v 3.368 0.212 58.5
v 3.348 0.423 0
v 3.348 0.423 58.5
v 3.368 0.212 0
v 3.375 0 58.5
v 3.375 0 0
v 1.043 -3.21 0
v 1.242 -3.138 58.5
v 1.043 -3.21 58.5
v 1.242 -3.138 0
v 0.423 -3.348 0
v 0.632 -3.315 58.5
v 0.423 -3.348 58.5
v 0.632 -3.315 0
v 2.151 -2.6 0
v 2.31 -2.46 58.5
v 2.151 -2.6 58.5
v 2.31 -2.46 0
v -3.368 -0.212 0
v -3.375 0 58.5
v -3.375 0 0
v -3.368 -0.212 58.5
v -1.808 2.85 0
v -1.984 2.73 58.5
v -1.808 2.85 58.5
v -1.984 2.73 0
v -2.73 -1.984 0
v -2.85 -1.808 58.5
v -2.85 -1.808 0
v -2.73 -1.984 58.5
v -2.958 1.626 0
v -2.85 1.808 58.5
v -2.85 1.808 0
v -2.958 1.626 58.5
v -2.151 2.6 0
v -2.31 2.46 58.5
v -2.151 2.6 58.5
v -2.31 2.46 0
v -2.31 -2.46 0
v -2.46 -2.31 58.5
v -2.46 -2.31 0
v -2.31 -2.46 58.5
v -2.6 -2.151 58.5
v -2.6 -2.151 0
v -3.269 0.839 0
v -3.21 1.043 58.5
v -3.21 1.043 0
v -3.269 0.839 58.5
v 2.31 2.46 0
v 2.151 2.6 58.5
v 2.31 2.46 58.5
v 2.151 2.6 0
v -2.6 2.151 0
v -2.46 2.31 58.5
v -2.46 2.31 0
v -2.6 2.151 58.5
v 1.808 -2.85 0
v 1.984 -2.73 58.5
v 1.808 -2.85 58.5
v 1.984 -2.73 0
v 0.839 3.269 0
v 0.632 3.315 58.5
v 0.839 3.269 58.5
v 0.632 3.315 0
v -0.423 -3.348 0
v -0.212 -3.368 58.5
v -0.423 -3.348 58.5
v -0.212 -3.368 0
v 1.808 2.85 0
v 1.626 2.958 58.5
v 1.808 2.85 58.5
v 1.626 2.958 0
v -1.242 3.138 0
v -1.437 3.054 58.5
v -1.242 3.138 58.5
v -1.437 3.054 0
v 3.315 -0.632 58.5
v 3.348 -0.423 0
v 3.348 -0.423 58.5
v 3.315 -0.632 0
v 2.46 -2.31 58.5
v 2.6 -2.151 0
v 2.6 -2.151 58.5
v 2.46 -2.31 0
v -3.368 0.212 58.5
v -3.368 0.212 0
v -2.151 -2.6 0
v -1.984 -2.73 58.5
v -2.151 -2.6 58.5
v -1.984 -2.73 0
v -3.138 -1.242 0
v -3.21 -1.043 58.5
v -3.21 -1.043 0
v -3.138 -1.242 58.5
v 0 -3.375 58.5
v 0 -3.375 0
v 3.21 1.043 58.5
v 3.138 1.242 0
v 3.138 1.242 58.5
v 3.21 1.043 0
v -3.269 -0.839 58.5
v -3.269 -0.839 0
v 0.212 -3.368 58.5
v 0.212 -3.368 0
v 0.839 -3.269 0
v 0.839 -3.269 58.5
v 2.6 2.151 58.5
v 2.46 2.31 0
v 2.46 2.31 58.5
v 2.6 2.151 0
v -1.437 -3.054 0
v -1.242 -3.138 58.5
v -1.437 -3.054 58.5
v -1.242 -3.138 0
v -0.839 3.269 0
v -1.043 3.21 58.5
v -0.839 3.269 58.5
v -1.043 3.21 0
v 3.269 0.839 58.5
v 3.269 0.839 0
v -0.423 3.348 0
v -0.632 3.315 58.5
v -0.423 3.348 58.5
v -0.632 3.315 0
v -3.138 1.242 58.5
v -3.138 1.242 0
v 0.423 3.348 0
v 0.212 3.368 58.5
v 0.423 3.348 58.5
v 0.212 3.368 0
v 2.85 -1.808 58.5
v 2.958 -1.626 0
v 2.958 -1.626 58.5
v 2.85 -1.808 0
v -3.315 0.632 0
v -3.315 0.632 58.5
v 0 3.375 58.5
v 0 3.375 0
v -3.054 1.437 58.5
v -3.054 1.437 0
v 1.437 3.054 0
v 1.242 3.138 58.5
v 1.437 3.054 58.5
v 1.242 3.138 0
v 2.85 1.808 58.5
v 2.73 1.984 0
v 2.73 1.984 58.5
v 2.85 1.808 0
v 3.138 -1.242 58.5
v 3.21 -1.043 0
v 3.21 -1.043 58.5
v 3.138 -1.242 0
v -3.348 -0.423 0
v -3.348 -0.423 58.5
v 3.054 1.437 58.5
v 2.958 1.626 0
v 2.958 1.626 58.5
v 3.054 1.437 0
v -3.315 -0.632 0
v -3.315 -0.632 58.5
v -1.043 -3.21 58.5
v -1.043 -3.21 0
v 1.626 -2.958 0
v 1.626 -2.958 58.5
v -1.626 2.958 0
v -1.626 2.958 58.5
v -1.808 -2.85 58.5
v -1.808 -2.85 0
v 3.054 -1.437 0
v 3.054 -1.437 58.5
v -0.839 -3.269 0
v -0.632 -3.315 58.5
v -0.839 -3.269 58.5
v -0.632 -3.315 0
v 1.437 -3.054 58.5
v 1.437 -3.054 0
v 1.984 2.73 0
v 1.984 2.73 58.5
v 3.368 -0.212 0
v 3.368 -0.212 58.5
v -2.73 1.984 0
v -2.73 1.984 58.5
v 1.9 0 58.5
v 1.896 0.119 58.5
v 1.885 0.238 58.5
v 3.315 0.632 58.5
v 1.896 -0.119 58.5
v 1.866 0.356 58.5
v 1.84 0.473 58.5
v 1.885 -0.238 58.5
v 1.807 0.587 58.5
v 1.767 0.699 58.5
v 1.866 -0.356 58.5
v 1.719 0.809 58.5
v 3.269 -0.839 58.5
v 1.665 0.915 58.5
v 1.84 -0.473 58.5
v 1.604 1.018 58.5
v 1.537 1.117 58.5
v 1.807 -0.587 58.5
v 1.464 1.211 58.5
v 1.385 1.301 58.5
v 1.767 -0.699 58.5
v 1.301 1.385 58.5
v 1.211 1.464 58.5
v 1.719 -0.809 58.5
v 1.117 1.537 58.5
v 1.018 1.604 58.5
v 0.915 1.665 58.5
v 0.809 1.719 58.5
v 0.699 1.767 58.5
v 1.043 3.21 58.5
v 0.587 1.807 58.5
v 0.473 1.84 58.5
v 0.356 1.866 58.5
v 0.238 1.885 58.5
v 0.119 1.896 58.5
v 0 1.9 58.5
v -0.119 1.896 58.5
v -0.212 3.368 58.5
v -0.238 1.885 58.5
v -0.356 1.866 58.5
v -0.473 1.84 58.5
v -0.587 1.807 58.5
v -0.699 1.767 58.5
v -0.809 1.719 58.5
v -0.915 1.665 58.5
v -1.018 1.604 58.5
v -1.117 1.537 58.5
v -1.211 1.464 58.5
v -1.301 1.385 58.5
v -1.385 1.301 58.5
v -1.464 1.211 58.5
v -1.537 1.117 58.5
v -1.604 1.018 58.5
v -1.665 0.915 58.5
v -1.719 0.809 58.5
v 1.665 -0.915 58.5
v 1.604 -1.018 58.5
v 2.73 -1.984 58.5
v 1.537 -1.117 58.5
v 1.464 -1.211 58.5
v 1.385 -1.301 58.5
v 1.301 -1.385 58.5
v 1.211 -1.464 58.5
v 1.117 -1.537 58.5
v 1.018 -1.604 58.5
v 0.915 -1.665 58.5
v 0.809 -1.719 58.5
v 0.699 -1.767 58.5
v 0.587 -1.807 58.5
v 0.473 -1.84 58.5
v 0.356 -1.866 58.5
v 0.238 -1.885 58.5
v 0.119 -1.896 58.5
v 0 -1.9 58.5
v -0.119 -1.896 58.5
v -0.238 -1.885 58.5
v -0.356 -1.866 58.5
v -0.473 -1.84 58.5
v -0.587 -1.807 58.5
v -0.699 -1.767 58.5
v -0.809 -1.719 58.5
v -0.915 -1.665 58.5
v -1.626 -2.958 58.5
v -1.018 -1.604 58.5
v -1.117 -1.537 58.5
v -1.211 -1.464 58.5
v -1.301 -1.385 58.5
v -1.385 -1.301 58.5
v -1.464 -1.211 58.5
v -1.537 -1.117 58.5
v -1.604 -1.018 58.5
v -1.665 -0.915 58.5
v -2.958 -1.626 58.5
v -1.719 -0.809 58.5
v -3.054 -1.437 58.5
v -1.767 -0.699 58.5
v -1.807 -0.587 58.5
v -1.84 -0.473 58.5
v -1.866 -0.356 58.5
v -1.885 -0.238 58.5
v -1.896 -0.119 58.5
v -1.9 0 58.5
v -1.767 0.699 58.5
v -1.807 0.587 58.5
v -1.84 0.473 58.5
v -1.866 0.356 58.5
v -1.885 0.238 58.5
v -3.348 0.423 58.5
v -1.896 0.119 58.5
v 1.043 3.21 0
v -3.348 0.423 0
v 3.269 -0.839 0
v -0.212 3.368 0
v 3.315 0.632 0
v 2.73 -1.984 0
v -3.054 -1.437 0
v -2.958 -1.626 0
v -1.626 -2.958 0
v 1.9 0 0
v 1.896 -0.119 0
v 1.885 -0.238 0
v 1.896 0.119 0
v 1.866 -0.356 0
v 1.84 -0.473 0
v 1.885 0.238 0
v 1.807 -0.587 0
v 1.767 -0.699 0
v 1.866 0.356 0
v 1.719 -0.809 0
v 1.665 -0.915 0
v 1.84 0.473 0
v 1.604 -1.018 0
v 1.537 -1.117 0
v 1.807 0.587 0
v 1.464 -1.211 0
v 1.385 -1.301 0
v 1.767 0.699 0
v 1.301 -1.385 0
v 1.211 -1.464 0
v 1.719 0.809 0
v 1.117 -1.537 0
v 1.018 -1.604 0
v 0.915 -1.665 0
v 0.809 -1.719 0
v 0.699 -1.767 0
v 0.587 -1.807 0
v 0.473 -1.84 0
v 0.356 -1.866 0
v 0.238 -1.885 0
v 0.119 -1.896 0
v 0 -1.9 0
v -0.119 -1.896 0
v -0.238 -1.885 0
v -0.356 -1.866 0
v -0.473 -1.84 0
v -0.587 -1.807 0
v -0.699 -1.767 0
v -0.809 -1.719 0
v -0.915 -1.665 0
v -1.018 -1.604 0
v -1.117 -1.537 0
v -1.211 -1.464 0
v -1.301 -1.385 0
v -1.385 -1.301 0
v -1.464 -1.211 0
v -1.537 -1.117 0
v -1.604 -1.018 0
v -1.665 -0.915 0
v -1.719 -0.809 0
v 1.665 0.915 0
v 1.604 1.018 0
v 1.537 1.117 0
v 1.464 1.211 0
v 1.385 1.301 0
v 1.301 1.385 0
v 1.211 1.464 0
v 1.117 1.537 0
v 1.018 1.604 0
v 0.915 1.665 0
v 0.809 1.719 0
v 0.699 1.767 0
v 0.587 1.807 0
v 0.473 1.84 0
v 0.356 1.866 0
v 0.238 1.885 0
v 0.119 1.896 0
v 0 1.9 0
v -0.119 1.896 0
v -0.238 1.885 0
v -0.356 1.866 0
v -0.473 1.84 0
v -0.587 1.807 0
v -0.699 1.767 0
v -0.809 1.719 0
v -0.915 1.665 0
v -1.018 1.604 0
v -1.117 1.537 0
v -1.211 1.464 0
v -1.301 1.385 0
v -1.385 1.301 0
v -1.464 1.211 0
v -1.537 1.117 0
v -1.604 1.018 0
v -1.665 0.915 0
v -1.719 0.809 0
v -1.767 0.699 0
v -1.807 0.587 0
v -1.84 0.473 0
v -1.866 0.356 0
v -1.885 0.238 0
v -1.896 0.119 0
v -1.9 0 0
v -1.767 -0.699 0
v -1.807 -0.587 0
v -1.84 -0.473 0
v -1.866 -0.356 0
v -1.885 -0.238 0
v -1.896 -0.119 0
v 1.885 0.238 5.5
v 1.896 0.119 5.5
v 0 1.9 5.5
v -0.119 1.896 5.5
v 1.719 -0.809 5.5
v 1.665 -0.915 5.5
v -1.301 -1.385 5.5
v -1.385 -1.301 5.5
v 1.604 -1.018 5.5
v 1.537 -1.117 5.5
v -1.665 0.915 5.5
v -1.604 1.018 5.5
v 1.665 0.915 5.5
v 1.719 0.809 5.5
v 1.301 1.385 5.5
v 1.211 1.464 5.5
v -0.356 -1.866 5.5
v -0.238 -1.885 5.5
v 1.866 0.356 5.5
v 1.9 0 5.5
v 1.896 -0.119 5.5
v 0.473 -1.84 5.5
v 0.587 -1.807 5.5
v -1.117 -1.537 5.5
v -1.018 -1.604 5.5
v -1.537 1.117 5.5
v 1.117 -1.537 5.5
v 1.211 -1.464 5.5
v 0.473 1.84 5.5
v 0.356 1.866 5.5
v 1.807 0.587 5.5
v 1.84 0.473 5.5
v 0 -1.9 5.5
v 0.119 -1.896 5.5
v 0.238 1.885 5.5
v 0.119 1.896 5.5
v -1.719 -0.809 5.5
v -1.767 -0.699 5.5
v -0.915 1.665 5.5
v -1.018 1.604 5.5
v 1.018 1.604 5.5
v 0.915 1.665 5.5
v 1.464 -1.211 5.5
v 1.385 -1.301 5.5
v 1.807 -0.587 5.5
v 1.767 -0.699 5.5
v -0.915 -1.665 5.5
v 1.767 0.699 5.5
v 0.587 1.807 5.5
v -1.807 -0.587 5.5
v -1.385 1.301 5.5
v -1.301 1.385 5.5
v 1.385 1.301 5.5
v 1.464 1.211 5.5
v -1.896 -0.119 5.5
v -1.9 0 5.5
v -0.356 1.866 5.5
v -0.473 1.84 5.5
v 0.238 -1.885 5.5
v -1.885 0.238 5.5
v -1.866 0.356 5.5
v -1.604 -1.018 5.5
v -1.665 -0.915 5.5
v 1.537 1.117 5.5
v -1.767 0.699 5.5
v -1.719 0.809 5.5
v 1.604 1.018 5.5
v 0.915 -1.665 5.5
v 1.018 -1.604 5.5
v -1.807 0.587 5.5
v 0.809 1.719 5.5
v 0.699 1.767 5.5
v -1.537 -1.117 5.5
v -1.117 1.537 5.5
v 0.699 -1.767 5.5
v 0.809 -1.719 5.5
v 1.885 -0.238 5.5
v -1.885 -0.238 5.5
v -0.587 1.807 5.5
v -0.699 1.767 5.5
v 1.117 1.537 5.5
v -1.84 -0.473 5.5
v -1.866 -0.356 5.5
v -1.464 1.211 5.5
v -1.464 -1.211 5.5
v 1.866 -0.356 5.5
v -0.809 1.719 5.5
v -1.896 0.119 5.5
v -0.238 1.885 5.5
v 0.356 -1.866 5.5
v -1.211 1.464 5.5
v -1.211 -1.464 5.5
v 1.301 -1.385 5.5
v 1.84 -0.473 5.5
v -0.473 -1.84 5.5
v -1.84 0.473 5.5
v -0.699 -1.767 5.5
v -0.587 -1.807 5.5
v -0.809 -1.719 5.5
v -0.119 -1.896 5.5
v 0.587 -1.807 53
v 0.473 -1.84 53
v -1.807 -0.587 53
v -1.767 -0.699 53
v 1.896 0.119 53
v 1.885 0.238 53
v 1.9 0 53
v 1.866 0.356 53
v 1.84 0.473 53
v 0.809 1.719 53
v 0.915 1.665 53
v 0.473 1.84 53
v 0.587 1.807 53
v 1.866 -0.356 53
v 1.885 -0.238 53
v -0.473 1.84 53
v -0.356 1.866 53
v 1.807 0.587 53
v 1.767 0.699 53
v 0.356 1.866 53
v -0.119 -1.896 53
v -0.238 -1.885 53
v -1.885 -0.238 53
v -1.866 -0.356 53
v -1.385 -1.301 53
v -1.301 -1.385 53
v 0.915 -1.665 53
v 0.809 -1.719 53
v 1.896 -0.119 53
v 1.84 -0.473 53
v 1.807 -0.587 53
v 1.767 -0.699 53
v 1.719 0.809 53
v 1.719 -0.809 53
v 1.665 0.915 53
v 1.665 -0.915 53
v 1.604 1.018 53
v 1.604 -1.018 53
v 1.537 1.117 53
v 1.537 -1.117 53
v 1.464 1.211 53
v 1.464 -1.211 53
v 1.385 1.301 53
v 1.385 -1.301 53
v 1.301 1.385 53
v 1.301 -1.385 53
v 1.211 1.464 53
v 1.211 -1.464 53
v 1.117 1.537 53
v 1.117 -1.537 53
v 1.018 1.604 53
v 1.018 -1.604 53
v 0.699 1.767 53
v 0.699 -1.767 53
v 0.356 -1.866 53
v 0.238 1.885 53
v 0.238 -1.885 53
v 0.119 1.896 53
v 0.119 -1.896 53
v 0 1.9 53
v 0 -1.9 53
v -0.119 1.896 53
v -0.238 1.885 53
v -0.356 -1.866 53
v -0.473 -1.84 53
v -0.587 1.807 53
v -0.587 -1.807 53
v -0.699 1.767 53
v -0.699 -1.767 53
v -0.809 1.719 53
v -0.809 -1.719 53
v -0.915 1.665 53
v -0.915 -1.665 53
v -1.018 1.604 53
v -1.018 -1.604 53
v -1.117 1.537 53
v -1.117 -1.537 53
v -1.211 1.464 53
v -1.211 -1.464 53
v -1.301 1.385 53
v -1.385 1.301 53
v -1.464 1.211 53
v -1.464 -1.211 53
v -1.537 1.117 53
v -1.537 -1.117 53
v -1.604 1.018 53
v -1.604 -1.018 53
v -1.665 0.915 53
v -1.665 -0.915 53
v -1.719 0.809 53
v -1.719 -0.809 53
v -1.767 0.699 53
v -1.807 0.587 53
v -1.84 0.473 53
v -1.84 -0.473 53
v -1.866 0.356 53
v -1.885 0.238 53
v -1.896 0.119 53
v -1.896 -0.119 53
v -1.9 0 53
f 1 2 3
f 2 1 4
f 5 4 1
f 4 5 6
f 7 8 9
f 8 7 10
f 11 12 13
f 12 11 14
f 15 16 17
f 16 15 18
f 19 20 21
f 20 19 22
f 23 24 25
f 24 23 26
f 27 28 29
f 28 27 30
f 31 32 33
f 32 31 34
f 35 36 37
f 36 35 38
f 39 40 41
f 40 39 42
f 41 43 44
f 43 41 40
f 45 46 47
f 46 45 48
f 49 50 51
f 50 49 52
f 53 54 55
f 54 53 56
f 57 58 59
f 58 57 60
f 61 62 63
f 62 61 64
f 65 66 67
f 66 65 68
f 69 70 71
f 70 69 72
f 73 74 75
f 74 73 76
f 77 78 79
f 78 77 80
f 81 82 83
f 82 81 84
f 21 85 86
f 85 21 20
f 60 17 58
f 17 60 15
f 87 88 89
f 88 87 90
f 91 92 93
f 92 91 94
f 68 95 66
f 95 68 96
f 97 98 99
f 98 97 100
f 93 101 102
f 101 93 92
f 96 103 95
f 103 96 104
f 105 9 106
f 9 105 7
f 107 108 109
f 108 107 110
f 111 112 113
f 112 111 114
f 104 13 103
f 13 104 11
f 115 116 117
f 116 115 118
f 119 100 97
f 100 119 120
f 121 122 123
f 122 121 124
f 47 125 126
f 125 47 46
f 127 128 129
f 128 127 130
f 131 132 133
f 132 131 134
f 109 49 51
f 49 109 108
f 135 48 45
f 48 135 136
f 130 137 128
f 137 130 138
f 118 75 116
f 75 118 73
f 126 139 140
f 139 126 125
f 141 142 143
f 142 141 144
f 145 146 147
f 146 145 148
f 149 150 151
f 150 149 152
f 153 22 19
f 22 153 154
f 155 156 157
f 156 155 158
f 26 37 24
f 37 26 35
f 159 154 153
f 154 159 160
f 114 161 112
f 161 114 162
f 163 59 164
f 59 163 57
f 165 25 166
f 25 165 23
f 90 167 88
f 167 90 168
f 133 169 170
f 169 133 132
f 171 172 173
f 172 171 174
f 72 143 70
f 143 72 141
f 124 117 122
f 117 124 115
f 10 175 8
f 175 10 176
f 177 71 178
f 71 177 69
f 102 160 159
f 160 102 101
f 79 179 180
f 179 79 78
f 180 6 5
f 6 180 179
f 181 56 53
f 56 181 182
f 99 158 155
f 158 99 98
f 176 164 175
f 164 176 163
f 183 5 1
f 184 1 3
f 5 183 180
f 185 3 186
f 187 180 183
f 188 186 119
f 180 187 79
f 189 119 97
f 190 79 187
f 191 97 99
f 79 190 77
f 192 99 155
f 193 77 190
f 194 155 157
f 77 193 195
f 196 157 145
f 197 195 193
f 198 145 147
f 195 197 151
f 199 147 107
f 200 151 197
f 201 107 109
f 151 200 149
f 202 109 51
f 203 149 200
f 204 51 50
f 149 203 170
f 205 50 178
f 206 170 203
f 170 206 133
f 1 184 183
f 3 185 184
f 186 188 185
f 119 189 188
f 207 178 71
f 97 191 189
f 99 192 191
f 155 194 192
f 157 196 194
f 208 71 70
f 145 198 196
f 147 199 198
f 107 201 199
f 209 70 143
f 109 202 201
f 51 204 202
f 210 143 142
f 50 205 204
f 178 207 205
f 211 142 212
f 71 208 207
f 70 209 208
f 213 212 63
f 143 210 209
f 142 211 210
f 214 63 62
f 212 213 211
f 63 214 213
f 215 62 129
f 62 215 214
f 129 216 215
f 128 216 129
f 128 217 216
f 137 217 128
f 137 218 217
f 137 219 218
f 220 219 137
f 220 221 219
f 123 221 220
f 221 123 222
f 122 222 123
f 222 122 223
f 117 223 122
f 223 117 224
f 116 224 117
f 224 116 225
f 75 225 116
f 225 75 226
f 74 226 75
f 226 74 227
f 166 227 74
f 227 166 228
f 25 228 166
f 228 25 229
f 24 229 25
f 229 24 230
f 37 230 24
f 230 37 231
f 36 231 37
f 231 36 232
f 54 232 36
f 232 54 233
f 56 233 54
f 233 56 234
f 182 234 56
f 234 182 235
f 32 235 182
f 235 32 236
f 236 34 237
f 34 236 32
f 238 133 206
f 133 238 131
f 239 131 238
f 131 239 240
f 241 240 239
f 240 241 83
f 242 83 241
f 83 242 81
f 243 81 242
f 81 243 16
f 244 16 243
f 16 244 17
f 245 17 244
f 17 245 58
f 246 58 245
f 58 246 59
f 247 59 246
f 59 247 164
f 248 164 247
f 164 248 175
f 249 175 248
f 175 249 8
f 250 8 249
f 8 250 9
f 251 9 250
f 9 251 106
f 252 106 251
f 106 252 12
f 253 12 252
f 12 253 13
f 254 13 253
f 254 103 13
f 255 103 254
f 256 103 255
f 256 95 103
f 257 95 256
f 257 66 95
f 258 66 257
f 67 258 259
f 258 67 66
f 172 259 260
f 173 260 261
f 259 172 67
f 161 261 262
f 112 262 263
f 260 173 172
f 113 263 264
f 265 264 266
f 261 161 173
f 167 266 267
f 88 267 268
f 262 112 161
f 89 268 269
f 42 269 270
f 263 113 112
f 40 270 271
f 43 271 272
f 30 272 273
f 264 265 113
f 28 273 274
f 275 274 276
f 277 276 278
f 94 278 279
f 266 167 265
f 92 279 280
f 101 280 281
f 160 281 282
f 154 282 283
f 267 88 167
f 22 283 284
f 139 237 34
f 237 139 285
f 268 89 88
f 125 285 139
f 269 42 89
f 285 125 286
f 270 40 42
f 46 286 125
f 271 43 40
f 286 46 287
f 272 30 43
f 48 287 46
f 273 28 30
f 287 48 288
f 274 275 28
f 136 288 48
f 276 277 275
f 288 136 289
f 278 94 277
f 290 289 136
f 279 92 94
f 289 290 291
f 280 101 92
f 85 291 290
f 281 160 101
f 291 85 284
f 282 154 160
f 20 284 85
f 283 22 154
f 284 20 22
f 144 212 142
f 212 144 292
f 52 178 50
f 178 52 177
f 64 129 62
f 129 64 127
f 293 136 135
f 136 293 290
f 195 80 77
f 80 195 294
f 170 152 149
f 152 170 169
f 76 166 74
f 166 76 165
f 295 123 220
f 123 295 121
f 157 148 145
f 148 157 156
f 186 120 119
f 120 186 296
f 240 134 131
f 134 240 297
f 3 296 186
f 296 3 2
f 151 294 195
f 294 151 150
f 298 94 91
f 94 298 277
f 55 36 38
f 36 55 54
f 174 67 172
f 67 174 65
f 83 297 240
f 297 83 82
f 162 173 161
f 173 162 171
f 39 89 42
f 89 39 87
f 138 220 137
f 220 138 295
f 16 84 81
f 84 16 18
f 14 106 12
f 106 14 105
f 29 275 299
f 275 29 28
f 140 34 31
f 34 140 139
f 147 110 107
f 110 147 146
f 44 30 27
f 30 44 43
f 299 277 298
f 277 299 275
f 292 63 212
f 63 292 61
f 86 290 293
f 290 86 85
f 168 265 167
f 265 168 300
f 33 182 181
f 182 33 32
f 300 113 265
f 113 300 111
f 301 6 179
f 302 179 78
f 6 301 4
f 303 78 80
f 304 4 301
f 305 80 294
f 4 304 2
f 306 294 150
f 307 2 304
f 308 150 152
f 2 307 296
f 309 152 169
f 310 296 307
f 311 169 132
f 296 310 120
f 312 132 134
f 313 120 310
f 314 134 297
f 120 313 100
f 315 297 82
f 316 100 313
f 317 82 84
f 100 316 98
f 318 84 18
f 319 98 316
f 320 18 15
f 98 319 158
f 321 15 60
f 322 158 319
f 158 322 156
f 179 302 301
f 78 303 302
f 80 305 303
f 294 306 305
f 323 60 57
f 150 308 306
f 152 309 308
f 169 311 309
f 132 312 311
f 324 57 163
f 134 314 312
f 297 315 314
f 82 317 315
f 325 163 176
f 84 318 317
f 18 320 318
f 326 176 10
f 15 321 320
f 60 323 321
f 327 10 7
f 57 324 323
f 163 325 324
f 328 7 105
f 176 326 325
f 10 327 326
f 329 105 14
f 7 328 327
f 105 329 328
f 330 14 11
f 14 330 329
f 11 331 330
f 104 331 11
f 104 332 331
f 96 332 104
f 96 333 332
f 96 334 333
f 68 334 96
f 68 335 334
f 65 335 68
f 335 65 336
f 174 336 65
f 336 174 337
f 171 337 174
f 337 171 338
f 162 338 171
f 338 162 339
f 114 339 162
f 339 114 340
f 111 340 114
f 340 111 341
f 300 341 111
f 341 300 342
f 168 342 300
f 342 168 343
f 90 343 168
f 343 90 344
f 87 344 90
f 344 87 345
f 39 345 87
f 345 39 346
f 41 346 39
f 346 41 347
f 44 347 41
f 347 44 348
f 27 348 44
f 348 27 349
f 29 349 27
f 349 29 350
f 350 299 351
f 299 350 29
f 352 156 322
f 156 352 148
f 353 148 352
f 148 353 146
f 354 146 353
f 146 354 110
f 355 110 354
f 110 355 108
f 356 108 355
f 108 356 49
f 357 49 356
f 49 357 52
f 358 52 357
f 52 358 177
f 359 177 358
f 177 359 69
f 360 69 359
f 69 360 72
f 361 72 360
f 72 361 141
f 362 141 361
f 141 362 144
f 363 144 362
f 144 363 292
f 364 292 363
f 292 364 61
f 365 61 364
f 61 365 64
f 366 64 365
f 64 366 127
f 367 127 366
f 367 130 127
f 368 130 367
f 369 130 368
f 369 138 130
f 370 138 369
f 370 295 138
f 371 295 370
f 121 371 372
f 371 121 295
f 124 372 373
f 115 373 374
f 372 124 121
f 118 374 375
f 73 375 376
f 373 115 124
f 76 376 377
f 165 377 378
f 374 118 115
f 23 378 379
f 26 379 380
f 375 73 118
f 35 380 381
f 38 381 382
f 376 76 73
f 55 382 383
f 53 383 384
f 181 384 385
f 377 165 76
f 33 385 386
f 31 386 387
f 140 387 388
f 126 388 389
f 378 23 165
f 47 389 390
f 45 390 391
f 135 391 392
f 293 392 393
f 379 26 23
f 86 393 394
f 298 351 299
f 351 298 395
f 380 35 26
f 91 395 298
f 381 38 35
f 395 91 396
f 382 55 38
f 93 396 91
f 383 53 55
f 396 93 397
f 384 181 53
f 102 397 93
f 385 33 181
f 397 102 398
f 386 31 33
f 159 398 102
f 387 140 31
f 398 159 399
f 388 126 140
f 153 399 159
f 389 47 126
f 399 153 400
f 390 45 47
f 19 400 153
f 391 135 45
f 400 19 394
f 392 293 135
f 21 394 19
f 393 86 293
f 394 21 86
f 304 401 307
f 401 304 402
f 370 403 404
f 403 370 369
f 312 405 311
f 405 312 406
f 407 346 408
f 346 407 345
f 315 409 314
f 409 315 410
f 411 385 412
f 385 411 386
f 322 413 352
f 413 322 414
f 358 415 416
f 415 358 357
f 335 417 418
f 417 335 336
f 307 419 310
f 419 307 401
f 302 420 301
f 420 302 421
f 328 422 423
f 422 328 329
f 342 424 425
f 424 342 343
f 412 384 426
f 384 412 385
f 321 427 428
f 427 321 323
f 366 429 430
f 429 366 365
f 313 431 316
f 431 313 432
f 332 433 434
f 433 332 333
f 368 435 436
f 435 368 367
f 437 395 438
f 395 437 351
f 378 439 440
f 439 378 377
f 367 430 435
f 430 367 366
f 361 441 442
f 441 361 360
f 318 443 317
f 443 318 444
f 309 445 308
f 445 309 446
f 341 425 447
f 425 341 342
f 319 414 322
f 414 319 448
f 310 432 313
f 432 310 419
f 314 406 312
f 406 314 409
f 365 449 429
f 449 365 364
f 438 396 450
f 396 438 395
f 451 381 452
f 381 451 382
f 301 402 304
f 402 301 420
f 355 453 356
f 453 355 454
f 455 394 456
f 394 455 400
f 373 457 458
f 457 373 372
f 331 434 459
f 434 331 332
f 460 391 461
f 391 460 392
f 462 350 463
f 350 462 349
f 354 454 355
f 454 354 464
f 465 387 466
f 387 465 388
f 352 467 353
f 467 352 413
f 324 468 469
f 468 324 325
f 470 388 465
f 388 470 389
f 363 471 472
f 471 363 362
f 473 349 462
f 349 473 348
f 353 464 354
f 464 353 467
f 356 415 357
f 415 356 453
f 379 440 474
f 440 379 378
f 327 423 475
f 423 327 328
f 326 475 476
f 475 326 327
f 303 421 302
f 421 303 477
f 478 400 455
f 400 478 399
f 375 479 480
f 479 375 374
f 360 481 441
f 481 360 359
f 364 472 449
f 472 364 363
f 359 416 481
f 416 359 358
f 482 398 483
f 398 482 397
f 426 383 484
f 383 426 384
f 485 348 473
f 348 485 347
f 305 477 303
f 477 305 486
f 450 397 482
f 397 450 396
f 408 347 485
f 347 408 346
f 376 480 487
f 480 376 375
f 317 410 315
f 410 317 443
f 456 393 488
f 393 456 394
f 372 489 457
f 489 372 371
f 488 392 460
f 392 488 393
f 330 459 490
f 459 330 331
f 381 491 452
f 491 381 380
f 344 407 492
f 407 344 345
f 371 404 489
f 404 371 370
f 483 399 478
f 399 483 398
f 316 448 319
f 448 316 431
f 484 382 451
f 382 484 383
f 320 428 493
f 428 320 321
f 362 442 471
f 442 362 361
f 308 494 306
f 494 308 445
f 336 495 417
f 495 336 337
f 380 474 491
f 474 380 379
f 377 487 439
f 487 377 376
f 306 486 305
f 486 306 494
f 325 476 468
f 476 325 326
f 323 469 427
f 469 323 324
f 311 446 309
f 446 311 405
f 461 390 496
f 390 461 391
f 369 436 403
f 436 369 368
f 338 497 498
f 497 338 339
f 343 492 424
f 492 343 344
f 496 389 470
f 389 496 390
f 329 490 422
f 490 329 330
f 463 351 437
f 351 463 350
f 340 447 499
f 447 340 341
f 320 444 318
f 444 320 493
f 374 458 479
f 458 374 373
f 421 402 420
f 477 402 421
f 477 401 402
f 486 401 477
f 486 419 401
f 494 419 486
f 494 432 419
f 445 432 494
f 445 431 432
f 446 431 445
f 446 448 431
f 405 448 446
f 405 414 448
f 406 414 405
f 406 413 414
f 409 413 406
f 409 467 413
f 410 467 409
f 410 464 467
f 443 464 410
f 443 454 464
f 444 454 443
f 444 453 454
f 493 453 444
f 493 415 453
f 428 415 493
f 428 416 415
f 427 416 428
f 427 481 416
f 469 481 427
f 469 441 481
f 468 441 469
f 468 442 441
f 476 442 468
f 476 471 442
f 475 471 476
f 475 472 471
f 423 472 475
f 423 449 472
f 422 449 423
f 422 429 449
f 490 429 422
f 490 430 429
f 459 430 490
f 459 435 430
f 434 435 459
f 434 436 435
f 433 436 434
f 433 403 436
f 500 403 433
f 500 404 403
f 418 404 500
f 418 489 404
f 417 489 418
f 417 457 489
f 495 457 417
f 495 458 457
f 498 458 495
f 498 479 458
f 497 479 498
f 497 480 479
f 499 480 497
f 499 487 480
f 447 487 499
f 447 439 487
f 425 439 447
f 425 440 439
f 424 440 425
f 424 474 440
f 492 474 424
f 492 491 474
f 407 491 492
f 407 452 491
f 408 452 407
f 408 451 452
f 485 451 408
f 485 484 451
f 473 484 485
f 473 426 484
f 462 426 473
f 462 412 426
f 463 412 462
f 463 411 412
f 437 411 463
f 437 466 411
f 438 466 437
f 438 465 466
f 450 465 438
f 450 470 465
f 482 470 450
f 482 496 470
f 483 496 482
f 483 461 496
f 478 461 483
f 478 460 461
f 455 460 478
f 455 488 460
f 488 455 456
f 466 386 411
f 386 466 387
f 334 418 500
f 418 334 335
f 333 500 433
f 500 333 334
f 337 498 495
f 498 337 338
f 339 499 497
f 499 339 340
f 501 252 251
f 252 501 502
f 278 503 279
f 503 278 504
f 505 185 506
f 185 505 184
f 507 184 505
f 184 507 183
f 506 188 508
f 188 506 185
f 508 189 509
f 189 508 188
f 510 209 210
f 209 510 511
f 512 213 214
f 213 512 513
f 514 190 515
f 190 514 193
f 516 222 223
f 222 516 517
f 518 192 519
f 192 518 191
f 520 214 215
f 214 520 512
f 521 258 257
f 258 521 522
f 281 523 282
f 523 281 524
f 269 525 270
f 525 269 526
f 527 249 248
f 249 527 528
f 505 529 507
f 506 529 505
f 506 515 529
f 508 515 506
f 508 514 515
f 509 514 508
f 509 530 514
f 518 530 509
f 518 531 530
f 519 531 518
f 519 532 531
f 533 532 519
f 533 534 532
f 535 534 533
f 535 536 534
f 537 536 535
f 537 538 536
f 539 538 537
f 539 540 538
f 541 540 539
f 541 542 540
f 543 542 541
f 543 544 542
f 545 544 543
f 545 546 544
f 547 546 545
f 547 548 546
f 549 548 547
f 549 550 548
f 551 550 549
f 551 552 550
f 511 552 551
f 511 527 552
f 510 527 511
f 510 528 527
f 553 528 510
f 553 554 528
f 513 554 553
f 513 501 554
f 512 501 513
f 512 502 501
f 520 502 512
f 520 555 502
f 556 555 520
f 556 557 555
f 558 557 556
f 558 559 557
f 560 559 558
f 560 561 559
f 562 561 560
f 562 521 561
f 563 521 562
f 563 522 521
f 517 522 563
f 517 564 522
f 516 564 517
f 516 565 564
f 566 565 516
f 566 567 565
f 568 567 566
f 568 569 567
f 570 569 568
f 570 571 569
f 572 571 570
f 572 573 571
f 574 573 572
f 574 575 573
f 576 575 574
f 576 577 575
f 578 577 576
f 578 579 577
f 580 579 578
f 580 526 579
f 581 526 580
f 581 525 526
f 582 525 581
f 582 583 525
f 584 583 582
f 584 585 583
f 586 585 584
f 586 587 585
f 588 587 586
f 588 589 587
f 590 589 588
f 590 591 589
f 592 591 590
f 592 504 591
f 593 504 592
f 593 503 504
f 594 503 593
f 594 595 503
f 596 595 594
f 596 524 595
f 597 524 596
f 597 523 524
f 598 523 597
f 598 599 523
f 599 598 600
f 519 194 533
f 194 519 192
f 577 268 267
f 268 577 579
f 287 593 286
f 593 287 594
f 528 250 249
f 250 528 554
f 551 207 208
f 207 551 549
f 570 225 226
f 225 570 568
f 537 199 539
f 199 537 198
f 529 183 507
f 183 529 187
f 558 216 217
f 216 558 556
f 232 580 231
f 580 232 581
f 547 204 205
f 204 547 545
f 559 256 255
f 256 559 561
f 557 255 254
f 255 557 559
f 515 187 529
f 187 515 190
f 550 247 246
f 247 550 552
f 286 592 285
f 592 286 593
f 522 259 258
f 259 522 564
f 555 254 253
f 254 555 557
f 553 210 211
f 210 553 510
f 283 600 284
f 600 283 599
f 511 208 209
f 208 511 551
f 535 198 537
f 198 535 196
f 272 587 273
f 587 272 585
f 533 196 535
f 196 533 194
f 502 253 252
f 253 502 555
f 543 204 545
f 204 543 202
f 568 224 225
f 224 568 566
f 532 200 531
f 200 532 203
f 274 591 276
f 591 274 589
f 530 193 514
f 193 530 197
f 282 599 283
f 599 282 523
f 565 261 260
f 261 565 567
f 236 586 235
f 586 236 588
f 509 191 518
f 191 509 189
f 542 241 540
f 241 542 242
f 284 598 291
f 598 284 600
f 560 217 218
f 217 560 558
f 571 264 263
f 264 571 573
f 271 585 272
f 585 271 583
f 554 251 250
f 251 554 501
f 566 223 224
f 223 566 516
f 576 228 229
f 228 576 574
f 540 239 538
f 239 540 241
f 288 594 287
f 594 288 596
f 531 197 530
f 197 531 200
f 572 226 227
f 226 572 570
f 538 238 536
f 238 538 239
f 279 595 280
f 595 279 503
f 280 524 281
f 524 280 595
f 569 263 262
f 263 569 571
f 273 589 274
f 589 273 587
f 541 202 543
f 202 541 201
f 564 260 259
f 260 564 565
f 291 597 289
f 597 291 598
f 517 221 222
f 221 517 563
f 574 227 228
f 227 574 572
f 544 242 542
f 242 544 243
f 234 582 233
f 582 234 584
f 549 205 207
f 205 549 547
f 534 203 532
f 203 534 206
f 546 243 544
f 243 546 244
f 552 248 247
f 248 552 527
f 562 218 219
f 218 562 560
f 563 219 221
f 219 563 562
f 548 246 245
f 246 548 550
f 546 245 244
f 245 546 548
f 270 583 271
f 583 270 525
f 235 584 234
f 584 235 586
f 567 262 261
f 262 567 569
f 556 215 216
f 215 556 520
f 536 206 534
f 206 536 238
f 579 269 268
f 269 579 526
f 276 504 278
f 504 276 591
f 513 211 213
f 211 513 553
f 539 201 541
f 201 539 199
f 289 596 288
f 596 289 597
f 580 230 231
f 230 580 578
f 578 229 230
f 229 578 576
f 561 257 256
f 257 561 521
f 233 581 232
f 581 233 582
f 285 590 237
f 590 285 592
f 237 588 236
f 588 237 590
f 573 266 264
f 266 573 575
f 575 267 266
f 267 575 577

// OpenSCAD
$fn = 100;
outerTubeHeight = 58.5;
outerTubeDia = 6.75;
boltCutoutDia = 3.8;
boltCutoutDepth = 5.5;

module fanBrace(ho=outerTubeHeight, do=outerTubeDia, hb=boltCutoutDepth, db=boltCutoutDia) {
    module outerTube(h=ho, d=do) { cylinder(h=h, d=d); };
    module boltCutout(h=hb, d=db) { cylinder(h=h, d=d); };
    difference() {
        outerTube();
        boltCutout();
        translate([0,0,ho-hb]) boltCutout();
    }
}

fanBrace();
